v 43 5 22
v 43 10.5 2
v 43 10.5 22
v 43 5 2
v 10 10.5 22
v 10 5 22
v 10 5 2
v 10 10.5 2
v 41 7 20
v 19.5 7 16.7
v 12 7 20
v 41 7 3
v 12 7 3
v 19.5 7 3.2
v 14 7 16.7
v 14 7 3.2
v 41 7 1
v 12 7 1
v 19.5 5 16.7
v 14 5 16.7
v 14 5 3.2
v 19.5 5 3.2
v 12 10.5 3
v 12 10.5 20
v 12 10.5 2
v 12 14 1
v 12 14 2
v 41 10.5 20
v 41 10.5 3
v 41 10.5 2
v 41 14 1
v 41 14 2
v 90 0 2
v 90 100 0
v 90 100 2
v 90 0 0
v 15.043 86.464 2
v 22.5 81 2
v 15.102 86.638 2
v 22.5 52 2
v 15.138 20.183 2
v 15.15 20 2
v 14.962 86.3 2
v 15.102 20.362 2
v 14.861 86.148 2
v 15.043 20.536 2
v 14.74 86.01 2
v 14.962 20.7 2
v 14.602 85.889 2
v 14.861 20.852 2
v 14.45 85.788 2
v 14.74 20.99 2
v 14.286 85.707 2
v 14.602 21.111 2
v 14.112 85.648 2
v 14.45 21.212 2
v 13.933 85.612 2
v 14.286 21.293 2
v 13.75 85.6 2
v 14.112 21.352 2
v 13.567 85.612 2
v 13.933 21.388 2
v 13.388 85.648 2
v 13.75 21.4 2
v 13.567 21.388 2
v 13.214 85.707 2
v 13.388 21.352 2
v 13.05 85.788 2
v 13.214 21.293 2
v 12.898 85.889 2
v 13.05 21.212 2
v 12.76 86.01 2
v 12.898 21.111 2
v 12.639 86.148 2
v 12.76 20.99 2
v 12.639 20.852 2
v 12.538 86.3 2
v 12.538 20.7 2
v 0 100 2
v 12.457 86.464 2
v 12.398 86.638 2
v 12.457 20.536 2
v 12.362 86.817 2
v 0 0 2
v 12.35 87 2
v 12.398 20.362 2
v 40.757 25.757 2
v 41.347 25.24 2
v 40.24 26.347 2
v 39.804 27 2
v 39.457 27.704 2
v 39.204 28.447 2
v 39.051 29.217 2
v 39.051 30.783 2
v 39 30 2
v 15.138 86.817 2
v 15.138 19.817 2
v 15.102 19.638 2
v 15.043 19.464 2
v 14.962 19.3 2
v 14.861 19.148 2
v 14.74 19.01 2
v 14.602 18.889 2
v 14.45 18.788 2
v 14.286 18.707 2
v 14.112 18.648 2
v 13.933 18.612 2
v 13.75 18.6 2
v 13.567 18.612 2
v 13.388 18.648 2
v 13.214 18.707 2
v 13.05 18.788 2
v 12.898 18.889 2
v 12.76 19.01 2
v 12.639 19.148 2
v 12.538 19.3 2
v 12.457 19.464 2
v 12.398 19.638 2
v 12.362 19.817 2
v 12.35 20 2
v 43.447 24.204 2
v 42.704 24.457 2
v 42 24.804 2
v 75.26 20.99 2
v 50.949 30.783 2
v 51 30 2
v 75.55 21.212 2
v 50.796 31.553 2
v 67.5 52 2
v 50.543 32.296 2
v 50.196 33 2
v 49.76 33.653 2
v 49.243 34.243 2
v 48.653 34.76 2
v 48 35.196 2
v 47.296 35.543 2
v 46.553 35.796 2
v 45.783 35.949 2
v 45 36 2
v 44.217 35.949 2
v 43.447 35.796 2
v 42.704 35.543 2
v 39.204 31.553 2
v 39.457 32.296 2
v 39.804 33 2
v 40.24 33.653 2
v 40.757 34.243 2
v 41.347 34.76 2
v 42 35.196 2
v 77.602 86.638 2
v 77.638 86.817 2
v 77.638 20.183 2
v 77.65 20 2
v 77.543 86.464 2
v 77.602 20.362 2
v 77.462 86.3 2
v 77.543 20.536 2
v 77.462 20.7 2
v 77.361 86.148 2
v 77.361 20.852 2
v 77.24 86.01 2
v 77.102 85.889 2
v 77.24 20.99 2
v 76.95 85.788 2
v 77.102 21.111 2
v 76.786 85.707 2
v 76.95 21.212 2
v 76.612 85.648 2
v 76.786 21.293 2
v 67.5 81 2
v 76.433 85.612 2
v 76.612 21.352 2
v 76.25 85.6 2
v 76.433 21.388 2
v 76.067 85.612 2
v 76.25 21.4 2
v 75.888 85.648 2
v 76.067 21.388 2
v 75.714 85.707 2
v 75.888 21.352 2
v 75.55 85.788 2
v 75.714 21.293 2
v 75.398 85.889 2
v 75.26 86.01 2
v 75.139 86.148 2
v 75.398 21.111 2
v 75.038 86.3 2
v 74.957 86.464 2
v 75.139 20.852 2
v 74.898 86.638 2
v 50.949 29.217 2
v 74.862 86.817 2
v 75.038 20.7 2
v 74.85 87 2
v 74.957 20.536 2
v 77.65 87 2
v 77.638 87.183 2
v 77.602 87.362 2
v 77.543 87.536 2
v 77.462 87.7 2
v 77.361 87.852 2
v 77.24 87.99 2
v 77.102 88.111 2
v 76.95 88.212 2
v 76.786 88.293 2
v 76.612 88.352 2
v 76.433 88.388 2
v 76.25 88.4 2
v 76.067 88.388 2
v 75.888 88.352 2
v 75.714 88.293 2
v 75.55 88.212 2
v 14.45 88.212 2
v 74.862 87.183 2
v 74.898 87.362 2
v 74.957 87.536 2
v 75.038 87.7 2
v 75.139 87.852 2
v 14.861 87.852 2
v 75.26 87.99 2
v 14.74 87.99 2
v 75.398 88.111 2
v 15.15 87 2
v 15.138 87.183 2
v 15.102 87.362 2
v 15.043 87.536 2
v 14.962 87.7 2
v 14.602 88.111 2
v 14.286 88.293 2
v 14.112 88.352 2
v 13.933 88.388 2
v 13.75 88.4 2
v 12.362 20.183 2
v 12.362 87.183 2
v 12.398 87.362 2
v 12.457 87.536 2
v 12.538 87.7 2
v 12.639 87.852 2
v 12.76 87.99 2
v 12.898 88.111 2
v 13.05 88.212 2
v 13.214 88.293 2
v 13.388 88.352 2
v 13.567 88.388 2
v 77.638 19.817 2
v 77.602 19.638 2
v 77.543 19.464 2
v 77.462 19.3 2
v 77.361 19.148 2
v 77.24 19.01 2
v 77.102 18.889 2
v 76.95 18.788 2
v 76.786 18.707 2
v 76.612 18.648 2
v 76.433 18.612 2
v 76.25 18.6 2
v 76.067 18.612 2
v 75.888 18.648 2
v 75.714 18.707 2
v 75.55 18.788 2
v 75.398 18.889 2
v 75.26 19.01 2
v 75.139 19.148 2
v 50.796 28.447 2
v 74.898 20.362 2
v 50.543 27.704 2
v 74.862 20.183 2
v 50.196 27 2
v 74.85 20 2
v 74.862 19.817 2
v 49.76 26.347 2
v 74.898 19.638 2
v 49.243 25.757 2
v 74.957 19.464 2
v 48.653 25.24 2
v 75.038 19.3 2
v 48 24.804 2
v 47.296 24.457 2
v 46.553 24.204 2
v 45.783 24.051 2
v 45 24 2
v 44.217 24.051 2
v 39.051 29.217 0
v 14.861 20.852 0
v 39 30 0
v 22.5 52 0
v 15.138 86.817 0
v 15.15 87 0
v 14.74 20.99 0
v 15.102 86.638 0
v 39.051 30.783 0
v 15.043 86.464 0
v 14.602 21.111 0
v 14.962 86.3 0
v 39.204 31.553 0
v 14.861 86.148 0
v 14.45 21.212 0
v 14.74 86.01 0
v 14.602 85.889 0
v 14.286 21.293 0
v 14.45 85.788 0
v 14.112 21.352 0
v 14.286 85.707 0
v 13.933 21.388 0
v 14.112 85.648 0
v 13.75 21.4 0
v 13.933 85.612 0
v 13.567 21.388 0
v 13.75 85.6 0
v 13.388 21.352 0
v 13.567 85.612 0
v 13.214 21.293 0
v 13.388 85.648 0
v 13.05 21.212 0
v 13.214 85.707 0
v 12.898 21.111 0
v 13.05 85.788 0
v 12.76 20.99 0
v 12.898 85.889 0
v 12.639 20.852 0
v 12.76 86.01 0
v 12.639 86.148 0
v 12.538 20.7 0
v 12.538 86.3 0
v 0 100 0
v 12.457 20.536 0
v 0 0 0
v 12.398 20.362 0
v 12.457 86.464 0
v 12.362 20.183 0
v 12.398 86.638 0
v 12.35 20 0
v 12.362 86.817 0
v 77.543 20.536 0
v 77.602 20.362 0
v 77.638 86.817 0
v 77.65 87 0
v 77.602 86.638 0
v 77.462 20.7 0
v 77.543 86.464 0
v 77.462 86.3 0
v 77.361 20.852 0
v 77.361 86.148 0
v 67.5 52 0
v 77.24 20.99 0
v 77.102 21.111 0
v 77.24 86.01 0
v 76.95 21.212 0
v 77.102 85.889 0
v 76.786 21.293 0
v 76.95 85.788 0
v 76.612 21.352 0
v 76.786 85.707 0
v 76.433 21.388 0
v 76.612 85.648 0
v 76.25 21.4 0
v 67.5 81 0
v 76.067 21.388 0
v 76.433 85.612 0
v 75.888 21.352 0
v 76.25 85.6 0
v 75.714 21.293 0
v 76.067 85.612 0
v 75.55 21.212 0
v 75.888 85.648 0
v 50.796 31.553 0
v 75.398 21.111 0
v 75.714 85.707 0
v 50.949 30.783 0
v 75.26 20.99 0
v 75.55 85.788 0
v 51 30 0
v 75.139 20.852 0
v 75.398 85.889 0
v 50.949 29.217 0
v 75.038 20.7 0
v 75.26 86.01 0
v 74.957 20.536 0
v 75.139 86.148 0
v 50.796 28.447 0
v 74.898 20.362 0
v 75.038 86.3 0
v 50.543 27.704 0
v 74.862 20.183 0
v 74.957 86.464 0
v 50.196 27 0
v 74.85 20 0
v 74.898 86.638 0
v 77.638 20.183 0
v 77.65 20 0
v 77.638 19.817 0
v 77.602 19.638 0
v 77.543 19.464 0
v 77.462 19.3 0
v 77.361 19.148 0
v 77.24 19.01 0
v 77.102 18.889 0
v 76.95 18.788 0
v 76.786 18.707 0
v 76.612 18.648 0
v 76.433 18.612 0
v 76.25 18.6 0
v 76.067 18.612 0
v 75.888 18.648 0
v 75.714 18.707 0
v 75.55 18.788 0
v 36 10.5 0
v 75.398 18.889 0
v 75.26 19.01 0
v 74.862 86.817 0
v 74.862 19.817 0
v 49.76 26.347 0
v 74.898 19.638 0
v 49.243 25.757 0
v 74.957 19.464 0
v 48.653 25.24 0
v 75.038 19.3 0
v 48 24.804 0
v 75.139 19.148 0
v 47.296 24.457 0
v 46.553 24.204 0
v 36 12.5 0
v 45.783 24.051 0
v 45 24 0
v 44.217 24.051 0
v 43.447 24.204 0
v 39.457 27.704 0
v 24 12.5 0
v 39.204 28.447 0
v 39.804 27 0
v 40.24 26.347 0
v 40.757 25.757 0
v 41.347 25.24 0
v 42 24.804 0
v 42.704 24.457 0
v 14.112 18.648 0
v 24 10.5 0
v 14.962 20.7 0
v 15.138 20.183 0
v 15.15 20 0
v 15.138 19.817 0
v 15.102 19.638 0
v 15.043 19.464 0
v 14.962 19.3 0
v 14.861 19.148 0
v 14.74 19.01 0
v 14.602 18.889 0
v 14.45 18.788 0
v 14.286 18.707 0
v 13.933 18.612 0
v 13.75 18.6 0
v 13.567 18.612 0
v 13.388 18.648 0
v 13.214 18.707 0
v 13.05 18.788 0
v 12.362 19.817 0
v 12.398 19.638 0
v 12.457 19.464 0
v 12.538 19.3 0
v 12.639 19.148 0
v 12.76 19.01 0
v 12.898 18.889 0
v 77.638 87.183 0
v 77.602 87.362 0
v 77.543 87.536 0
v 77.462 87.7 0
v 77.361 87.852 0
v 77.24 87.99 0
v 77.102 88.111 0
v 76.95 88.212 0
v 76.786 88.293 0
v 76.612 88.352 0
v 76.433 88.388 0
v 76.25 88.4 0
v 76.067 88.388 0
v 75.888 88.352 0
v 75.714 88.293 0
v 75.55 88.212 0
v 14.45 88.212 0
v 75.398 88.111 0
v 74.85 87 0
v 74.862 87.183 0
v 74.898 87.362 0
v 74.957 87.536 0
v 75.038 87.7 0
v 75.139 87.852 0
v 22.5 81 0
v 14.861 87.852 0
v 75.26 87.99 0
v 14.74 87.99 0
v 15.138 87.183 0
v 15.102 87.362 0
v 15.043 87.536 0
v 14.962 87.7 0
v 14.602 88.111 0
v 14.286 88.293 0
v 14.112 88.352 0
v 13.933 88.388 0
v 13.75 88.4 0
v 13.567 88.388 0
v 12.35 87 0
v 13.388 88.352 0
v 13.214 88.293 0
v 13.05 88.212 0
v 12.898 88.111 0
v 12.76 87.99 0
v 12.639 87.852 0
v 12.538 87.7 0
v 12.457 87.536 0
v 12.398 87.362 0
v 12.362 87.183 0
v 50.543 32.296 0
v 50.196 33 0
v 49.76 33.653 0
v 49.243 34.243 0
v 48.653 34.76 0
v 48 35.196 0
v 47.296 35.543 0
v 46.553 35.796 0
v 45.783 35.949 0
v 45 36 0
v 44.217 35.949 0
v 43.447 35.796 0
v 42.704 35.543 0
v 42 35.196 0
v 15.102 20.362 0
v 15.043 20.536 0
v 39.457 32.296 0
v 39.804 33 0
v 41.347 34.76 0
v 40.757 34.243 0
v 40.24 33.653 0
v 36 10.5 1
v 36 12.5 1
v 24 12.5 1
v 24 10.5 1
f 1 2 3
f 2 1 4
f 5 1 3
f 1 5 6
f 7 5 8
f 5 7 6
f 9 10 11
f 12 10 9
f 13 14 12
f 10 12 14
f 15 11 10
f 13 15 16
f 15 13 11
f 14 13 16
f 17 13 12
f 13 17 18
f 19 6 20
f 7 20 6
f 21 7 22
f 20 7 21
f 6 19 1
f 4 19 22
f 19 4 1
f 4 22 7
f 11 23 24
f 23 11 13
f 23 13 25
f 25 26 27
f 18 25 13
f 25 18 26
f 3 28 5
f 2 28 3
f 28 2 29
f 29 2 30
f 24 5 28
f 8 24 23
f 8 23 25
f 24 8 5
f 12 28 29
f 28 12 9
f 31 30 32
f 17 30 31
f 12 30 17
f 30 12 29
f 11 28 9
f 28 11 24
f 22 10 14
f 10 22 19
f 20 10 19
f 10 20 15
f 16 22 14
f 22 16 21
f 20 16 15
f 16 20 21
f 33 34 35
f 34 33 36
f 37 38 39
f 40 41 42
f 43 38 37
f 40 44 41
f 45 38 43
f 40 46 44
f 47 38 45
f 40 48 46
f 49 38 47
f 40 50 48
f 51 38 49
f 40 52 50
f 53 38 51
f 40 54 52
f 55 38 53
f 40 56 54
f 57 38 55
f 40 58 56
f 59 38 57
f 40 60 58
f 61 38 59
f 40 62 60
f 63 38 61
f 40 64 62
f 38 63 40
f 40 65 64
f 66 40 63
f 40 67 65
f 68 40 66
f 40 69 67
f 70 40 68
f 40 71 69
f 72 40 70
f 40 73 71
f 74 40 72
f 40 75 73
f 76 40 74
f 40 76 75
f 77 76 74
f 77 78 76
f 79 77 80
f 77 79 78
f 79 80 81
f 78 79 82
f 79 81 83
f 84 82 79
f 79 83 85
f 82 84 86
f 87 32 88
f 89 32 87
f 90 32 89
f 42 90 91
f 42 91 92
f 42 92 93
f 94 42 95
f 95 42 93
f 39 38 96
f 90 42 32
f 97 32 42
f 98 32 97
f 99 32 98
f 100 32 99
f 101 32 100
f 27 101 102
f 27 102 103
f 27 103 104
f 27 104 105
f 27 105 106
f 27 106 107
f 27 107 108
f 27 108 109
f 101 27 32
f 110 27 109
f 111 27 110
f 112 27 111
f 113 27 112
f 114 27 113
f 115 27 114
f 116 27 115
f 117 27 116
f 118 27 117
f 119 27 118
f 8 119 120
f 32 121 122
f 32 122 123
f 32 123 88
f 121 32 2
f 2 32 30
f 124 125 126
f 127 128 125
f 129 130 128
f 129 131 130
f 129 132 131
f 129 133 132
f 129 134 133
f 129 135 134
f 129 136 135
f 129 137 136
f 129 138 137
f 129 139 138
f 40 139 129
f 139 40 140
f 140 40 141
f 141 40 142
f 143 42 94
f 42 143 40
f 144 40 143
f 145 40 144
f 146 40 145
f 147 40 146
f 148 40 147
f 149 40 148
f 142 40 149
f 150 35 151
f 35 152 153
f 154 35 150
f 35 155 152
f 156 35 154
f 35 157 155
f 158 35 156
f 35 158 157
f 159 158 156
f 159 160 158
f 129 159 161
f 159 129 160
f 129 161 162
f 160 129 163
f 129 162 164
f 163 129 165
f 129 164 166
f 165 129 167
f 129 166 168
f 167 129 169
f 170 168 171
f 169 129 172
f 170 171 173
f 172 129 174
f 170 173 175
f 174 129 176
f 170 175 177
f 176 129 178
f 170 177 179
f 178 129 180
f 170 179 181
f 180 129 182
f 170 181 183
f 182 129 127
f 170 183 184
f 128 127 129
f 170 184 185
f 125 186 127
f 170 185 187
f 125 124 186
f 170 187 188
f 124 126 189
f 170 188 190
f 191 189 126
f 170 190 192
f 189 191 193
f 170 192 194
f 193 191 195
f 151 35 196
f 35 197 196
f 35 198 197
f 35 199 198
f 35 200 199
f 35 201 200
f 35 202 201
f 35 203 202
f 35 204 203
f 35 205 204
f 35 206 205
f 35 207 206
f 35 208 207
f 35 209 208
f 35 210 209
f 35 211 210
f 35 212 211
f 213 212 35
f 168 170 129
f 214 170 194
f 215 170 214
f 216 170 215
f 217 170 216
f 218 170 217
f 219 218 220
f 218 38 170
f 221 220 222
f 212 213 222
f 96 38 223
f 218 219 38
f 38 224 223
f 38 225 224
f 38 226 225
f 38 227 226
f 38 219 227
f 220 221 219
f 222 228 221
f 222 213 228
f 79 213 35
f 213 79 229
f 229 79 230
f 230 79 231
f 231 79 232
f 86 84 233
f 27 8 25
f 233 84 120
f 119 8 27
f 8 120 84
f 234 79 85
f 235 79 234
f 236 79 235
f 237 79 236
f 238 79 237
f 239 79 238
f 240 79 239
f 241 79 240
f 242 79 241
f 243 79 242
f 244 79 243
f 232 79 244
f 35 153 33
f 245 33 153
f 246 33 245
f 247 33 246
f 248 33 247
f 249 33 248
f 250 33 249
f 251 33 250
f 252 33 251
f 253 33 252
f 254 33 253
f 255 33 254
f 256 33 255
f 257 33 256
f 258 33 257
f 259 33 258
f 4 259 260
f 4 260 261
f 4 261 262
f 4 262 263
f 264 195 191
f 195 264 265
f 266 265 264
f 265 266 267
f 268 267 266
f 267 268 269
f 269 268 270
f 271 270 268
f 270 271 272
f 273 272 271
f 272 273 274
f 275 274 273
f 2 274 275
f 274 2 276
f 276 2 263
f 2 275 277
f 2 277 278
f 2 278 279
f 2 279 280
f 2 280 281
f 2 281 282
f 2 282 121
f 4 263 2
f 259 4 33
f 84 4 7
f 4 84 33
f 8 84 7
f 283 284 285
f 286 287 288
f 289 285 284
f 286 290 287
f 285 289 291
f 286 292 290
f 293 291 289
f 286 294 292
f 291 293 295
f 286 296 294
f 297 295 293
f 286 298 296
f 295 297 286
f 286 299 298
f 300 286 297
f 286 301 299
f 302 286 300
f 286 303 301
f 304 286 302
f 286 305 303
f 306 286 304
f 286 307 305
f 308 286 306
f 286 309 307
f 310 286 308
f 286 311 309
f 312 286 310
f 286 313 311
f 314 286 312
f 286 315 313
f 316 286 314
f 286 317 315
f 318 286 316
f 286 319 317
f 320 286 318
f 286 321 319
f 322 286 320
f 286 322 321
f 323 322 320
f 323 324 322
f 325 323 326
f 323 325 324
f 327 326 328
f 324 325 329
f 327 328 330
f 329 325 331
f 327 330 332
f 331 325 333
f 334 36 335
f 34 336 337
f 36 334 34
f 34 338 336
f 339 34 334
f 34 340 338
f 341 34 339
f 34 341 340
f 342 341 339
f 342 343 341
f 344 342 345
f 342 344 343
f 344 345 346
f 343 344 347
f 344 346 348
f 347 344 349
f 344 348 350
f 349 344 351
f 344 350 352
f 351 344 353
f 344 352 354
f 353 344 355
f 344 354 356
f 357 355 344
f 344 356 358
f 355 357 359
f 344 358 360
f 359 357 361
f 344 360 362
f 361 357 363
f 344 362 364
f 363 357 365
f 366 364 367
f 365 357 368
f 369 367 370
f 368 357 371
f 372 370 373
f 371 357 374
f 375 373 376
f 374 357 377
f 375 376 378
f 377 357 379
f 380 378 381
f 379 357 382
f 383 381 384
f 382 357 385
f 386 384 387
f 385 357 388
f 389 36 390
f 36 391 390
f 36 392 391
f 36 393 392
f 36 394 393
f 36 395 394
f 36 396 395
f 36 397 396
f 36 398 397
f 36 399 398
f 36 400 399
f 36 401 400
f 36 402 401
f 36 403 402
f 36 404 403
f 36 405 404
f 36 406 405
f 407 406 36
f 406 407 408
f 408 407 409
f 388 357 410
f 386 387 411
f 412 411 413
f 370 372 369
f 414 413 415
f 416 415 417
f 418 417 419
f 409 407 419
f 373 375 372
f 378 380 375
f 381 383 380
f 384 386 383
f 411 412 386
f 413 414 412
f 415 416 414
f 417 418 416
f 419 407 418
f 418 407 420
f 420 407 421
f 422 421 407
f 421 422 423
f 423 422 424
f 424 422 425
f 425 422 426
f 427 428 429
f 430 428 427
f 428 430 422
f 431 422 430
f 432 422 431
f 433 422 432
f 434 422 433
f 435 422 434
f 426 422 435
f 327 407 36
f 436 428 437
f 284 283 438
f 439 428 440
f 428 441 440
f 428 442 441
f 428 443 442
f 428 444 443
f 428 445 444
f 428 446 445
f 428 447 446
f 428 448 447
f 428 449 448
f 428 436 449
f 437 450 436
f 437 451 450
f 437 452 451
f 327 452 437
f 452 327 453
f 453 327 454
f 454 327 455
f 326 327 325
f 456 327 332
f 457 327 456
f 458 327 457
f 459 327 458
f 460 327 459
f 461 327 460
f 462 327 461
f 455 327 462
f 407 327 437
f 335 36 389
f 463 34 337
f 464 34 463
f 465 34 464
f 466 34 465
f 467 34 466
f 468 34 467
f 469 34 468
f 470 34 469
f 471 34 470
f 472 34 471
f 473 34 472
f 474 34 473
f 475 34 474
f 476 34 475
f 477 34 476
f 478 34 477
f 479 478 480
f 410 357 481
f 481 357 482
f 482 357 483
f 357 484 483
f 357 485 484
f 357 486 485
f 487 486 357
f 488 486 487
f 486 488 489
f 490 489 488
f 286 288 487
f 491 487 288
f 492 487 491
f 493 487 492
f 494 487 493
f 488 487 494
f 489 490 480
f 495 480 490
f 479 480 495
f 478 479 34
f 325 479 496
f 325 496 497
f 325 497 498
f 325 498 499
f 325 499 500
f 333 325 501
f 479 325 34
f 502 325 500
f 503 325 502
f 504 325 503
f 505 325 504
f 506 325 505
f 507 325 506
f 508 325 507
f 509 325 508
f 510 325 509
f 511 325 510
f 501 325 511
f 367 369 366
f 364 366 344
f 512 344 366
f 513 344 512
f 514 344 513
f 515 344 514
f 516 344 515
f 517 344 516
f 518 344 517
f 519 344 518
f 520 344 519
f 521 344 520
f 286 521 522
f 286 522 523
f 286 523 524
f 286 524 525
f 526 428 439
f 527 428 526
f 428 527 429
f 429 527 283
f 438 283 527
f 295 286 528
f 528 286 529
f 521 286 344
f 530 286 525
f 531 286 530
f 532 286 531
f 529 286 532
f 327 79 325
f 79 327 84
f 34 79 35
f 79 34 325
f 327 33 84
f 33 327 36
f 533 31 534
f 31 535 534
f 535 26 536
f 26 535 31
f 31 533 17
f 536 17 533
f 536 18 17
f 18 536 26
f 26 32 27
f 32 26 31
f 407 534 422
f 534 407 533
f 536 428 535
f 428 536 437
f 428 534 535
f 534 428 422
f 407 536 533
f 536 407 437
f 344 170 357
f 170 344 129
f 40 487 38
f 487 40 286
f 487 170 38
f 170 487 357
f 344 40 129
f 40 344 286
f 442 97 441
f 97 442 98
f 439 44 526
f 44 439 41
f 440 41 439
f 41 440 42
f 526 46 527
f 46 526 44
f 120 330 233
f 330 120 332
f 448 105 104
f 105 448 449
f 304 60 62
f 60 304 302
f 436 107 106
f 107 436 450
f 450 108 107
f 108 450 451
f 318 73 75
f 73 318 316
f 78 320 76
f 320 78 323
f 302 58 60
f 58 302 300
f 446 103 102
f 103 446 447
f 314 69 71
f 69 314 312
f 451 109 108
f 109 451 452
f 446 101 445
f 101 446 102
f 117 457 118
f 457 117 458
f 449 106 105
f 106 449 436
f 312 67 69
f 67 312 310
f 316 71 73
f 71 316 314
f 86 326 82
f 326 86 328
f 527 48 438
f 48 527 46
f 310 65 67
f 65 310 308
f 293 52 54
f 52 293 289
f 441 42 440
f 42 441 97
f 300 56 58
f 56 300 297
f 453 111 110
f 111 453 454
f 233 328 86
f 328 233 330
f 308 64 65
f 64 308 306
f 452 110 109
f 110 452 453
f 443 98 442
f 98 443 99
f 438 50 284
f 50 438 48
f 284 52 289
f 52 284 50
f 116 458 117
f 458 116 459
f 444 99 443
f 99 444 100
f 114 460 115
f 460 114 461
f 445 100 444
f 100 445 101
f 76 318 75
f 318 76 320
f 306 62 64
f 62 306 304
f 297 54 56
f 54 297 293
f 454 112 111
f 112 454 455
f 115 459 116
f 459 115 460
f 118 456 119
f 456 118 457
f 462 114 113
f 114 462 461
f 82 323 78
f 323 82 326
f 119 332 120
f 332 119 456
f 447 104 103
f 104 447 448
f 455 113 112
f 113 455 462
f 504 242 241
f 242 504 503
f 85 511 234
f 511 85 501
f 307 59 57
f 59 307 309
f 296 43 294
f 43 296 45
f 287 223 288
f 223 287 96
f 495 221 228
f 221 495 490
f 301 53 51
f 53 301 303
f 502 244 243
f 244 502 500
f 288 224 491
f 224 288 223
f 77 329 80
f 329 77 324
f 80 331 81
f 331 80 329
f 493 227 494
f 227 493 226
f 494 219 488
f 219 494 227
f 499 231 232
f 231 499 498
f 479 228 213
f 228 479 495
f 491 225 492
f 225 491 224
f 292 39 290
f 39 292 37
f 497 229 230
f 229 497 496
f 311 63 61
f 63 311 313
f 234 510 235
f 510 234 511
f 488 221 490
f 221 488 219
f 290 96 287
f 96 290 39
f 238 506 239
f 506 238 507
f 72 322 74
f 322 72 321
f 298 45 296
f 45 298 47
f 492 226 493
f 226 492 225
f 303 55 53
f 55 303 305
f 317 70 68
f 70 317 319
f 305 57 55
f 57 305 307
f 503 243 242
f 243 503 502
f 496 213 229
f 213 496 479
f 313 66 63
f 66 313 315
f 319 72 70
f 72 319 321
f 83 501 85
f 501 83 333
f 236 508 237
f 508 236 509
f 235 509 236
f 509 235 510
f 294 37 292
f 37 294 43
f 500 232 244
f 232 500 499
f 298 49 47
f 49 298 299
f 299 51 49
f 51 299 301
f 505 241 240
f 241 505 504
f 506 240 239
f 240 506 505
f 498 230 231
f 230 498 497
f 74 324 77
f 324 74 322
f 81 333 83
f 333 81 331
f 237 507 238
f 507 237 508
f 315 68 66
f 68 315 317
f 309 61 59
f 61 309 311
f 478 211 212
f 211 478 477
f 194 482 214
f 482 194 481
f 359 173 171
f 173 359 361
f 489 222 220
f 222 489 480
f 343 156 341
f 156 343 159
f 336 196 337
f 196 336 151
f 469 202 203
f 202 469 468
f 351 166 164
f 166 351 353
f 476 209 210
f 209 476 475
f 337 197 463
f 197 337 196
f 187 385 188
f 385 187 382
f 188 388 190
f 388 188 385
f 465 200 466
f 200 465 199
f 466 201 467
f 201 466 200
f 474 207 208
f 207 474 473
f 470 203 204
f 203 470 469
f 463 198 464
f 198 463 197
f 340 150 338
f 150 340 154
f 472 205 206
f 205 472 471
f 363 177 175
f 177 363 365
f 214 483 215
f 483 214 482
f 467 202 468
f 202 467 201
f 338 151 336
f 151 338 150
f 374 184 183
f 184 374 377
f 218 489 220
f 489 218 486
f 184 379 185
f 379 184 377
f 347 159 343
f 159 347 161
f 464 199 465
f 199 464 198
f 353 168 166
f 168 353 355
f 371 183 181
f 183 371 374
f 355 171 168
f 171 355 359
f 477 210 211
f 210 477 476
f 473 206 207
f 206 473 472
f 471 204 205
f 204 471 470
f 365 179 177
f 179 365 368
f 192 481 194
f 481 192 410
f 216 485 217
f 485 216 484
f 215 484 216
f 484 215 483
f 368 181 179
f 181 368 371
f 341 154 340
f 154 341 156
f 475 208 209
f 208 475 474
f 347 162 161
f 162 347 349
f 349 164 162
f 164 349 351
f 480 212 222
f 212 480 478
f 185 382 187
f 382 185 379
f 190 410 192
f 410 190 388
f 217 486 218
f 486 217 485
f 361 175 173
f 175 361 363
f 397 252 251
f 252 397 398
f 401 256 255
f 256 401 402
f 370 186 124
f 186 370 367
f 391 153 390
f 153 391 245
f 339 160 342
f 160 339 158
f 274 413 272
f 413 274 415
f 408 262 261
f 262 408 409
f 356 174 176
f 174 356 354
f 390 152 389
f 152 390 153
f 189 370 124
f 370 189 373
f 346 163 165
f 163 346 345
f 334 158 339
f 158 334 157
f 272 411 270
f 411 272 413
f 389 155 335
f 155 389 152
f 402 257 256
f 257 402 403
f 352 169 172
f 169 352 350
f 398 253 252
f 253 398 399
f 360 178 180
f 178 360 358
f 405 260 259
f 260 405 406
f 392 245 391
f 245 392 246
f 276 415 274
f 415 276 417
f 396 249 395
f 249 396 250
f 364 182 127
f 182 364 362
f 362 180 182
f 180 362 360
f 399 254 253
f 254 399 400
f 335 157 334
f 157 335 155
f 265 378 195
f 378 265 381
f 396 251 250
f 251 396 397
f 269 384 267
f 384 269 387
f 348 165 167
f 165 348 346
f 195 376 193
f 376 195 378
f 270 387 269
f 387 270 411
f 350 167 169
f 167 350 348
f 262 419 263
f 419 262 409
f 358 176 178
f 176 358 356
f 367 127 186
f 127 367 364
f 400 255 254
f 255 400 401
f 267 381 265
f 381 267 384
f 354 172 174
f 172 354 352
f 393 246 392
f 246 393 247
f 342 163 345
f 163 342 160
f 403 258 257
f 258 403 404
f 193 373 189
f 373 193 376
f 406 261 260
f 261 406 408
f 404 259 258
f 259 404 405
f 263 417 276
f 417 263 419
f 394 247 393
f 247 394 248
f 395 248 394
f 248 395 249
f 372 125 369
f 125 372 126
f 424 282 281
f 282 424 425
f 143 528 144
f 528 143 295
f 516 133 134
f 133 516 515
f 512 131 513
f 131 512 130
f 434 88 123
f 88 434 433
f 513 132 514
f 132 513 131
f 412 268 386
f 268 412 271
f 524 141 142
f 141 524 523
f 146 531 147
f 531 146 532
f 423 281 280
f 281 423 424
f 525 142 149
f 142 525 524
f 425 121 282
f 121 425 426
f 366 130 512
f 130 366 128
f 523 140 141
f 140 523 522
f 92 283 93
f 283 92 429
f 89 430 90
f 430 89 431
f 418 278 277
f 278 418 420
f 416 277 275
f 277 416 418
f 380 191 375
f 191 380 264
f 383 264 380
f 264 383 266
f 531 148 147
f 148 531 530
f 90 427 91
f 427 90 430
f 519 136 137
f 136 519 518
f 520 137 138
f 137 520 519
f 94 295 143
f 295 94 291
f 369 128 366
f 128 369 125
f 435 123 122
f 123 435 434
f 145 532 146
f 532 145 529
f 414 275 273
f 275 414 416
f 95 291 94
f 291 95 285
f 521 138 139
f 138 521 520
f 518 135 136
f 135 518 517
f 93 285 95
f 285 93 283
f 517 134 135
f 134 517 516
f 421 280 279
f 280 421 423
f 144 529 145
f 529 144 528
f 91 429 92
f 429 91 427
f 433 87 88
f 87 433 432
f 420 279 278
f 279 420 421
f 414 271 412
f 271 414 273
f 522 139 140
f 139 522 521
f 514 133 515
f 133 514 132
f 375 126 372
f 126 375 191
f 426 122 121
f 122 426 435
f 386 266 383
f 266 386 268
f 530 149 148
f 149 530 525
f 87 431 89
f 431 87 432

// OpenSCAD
$fn = 48;

difference() {
	union() {
		cube(size = [90, 100, 2]);
		translate(v = [10, 5, 1]) {
			difference() {
				union() {
					cube(size = [33, 2, 21]);
					translate(v = [0, 2, 0]) {
						cube(size = [2, 3.5000000000, 21]);
					}
					translate(v = [31, 2, 0]) {
						cube(size = [2, 3.5000000000, 21]);
					}
					translate(v = [2, 2, 19]) {
						cube(size = [29, 3.5000000000, 2]);
					}
				}
				translate(v = [4, -15, 2.2000000000]) {
					cube(size = [5.5000000000, 20, 13.5000000000]);
				}
			}
		}
	}
	translate(v = [12, 7, 1]) {
		union() {
			cube(size = [29, 7, 2]);
			translate(v = [12, 3.5000000000, -2]) {
				cube(size = [12, 2, 3]);
			}
		}
	}
	translate(v = [13.7500000000, 20, 0]) {
		union() {
			translate(v = [8.7500000000, 32, -1]) {
				cube(size = [45, 29, 4]);
			}
			translate(v = [0, 0, -1]) {
				cylinder(d = 2.8000000000, h = 10);
			}
			translate(v = [0, 67, -1]) {
				cylinder(d = 2.8000000000, h = 10);
			}
			translate(v = [62.5000000000, 67, -1]) {
				cylinder(d = 2.8000000000, h = 10);
			}
			translate(v = [62.5000000000, 0, -1]) {
				cylinder(d = 2.8000000000, h = 10);
			}
			translate(v = [31.2500000000, 10, -1]) {
				cylinder(d = 12, h = 10);
			}
		}
	}
}
/***********************************************
*********      SolidPython code:      **********
************************************************
 
#! /usr/bin/env python
# -*- coding: utf-8 -*-
from __future__ import division
import os
import sys

from solid import *
from solid.utils import *

SEGMENTS = 48

lcd_hole_distance_x = 62.5
lcd_hole_distance_y = 67

lcd_screw_holes = (
  translate([0, 0, -1])(cylinder(d=2.8, h=10)),
  translate([0, lcd_hole_distance_y, -1])(cylinder(d=2.8, h=10)),
  translate([lcd_hole_distance_x, lcd_hole_distance_y, -1])(cylinder(d=2.8, h=10)),
  translate([lcd_hole_distance_x, 0, -1])(cylinder(d=2.8, h=10)) 
)

lcd_window_x = 45
lcd_window = cube(size=[lcd_window_x, 29, 4])

lcd_holes = (
    lcd_screw_holes +
    translate([(lcd_hole_distance_x - lcd_window_x)/2, 32, -1])(lcd_window) +
    translate([31.25, 10, -1])(cylinder(d=12, h=10))
)

sd_card_slot = cube(size=[15, 2, 4])

card_width = 29
card_depth = 19
card_connector_hole = cube(size=[5.5, 20, 13.5])
card_fence_height = 3.5
sd_card_holder = (
    cube(size=[card_width + 4, 2, card_depth + 2]) + 
    translate([0, 2, 0])(cube(size=[2, card_fence_height, card_depth + 2])) +
    translate([card_width + 2, 2, 0])(cube(size=[2, card_fence_height, card_depth + 2])) +
    translate([2, 2, card_depth])(cube(size=[card_width, card_fence_height, 2])) -
    translate([4, -15, 2.2])(card_connector_hole)
)

sd_card_hole = (
    cube(size=[card_width, 7, 2]) +
    translate([12,3.5,-2])(cube(size=[12, 2, 3]))
)

base_plate_dim_x = 90
base_plate_dim_y = 100

card_holder_x = 10
card_holder_y = 5
base_plate_test = (
    cube(size=[base_plate_dim_x, base_plate_dim_y, 2])+
    translate([card_holder_x, card_holder_y, 1])(sd_card_holder) -
    translate([card_holder_x + 2, card_holder_y + 2, 1])(sd_card_hole) -
    translate([(base_plate_dim_x - lcd_hole_distance_x)/2, 20, 0])(lcd_holes)
)

base_plate = (
    cube(size=[80, 80, 2]) - 
    translate([5, 5, -1])(lcd_holes) -
    translate([20, 25, -1])(lcd_window) -
    translate([30, 15, -1])(sd_card_slot) +
    translate([28, 13, 2])(sd_card_holder)
)

if __name__ == '__main__':
    out_dir = sys.argv[1] if len(sys.argv) > 1 else os.curdir
    file_out = os.path.join(out_dir, 'front_plate.scad')

    a = base_plate_test

    print("%(__file__)s: SCAD file written to: \n%(file_out)s" % vars())

    # Adding the file_header argument as shown allows you to change
    # the detail of arcs by changing the SEGMENTS variable.  This can
    # be expensive when making lots of small curves, but is otherwise
    # useful.
    scad_render_to_file(a, file_out, file_header='$fn = %s;' % SEGMENTS) 
 
************************************************/
